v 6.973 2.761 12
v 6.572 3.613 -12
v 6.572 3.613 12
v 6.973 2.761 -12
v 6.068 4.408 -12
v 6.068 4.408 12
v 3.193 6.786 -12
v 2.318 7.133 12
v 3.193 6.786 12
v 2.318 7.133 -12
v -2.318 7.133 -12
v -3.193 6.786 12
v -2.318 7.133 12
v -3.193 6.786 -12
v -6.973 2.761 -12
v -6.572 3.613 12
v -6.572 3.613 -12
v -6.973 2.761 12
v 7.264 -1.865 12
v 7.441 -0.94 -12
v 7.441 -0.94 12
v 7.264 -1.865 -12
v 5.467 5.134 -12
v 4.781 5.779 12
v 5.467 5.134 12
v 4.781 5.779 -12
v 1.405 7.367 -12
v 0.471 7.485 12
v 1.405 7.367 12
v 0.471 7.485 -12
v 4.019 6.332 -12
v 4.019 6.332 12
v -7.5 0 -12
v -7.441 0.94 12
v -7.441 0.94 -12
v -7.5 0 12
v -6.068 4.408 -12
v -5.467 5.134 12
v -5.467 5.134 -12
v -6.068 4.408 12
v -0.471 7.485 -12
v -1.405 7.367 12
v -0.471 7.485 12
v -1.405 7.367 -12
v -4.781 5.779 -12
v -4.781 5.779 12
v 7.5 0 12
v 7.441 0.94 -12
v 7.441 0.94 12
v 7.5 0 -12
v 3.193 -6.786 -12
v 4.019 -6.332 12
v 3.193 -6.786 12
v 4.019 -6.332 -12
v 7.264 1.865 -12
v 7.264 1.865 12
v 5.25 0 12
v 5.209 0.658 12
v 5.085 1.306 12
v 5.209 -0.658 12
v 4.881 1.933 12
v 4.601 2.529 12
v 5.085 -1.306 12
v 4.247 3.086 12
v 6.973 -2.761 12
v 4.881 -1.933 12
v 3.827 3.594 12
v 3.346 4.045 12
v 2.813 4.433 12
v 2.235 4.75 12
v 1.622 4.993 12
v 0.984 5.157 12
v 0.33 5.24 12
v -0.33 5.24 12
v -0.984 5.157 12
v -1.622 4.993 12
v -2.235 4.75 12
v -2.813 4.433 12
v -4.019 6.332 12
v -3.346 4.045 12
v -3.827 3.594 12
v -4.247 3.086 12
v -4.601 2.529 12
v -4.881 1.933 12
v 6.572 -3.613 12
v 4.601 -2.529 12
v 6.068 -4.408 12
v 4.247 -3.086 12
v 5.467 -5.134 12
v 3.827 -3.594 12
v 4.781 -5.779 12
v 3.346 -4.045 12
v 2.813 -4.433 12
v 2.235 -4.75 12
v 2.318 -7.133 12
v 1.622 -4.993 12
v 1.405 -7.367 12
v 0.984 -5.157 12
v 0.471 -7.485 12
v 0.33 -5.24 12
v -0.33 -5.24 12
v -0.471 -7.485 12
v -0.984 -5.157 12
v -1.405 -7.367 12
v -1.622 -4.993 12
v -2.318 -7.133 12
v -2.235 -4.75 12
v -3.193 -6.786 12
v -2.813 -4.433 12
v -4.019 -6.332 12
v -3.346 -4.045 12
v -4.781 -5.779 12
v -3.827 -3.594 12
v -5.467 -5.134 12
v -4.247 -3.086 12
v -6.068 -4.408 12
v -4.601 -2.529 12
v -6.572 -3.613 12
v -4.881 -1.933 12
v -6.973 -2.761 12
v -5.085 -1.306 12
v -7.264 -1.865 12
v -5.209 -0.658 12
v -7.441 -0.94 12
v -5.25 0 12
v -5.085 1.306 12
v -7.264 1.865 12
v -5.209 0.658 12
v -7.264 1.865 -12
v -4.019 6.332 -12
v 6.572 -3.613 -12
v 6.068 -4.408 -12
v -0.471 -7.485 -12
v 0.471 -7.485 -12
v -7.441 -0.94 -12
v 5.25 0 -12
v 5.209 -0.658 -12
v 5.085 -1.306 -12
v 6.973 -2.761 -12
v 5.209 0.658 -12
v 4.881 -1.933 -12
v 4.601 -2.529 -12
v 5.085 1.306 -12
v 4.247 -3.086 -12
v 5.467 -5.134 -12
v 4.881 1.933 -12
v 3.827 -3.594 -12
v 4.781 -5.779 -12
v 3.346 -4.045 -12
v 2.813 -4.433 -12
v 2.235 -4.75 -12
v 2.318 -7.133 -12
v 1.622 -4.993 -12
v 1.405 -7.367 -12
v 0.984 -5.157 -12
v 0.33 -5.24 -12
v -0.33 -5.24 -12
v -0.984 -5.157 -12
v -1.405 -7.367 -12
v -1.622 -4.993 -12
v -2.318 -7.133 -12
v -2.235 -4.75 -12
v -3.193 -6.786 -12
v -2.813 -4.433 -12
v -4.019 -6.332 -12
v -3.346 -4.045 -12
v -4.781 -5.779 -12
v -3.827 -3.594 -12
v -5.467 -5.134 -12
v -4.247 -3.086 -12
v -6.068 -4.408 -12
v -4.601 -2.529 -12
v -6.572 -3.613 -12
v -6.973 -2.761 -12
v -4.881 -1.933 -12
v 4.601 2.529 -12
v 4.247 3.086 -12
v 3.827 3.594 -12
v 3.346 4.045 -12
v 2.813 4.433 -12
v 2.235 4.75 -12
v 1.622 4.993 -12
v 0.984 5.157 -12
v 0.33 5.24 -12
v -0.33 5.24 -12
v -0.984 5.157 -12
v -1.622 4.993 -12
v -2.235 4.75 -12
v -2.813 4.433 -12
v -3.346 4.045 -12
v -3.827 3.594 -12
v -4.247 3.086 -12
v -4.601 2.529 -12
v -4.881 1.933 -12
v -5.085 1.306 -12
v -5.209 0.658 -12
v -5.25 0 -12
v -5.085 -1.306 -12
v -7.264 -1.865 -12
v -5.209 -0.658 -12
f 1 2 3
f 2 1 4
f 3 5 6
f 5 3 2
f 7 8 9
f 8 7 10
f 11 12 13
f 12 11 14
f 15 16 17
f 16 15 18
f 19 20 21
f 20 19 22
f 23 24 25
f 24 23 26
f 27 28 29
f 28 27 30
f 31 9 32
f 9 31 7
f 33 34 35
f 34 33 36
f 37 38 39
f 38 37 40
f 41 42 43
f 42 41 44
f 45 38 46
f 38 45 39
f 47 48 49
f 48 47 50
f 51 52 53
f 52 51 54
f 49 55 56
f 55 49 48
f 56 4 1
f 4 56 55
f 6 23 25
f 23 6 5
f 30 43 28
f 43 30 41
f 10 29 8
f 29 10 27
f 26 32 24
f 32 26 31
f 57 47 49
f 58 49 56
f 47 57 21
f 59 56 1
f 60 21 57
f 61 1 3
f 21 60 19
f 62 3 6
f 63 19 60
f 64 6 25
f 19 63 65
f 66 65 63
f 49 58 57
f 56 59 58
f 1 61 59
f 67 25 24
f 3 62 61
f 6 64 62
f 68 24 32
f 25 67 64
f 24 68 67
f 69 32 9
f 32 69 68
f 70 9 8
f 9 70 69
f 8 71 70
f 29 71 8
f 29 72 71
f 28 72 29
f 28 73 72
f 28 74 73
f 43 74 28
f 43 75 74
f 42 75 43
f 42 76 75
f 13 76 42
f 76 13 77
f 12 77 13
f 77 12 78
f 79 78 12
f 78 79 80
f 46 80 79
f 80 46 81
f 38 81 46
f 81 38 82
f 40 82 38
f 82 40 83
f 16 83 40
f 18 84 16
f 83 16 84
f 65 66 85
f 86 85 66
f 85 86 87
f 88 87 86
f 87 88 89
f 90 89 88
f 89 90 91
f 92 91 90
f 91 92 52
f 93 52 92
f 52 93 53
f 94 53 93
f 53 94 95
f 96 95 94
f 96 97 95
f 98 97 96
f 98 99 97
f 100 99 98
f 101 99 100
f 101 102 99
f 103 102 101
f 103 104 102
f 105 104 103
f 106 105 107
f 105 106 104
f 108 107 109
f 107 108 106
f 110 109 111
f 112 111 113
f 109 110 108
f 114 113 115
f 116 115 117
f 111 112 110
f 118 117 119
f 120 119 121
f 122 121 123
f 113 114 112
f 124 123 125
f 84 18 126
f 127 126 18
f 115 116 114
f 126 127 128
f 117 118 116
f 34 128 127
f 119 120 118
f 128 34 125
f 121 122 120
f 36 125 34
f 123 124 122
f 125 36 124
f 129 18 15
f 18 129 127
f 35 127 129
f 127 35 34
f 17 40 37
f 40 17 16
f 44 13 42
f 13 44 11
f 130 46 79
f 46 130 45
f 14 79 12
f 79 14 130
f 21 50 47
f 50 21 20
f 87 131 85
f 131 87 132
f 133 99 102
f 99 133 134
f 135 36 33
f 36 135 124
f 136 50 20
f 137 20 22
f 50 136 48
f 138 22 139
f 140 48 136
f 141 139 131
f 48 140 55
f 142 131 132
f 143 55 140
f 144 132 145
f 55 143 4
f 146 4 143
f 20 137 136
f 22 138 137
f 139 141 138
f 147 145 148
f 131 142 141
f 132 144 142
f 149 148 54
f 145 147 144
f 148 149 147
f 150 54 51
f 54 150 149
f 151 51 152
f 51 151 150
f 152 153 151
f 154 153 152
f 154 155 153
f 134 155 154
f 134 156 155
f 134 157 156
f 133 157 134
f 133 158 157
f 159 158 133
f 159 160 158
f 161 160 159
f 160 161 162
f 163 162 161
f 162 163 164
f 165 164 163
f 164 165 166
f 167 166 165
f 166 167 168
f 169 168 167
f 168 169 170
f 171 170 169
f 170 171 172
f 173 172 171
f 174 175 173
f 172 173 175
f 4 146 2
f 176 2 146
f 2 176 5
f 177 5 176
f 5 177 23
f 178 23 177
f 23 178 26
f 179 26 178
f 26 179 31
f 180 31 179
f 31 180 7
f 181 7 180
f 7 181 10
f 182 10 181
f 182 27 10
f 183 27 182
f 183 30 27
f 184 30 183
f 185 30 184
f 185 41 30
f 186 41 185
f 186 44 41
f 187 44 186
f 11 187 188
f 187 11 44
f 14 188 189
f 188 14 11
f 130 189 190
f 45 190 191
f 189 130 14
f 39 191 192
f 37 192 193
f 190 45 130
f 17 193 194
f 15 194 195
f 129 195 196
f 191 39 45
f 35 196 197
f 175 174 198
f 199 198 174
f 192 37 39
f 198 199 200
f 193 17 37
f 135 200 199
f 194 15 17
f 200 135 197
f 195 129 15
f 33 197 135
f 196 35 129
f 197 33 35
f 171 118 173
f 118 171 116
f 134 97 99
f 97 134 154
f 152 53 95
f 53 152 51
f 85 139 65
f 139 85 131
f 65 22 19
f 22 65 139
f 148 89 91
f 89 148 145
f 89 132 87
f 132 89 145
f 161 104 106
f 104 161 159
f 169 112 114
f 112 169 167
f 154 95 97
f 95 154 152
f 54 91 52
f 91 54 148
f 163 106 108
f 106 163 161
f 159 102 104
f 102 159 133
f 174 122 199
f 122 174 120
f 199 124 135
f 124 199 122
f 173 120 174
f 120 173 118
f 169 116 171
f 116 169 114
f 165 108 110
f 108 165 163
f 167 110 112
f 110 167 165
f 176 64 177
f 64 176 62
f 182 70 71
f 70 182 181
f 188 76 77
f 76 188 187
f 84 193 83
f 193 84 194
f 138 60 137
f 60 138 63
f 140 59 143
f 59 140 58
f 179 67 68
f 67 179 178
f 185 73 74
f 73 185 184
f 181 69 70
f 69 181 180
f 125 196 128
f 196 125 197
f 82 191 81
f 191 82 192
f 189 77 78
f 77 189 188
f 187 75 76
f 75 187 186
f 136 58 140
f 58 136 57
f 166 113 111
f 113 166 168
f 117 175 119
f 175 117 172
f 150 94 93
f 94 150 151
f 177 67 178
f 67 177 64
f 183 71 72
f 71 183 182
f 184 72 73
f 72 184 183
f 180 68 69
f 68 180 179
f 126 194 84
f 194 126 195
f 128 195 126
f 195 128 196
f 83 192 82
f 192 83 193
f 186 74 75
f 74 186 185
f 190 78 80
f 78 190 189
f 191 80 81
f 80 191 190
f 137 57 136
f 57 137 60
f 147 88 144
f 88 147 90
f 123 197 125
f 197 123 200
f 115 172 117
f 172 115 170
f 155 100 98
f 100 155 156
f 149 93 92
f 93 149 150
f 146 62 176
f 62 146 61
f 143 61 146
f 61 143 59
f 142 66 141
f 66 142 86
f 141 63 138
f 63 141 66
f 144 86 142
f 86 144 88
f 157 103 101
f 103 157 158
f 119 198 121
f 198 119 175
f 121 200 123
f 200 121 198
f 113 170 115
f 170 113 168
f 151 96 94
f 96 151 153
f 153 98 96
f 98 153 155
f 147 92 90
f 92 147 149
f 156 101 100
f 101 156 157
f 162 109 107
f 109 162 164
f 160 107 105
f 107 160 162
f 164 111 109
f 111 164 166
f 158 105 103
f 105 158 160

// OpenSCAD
$fn = 50;


difference() {
	union() {
		translate(v = [0, 0, -12.0000000000]) {
			cylinder(h = 24, r = 7.5000000000);
		}
	}
	union() {
		translate(v = [0, 0, -100.0000000000]) {
			cylinder(h = 200, r = 5.2500000000);
		}
	}
}
